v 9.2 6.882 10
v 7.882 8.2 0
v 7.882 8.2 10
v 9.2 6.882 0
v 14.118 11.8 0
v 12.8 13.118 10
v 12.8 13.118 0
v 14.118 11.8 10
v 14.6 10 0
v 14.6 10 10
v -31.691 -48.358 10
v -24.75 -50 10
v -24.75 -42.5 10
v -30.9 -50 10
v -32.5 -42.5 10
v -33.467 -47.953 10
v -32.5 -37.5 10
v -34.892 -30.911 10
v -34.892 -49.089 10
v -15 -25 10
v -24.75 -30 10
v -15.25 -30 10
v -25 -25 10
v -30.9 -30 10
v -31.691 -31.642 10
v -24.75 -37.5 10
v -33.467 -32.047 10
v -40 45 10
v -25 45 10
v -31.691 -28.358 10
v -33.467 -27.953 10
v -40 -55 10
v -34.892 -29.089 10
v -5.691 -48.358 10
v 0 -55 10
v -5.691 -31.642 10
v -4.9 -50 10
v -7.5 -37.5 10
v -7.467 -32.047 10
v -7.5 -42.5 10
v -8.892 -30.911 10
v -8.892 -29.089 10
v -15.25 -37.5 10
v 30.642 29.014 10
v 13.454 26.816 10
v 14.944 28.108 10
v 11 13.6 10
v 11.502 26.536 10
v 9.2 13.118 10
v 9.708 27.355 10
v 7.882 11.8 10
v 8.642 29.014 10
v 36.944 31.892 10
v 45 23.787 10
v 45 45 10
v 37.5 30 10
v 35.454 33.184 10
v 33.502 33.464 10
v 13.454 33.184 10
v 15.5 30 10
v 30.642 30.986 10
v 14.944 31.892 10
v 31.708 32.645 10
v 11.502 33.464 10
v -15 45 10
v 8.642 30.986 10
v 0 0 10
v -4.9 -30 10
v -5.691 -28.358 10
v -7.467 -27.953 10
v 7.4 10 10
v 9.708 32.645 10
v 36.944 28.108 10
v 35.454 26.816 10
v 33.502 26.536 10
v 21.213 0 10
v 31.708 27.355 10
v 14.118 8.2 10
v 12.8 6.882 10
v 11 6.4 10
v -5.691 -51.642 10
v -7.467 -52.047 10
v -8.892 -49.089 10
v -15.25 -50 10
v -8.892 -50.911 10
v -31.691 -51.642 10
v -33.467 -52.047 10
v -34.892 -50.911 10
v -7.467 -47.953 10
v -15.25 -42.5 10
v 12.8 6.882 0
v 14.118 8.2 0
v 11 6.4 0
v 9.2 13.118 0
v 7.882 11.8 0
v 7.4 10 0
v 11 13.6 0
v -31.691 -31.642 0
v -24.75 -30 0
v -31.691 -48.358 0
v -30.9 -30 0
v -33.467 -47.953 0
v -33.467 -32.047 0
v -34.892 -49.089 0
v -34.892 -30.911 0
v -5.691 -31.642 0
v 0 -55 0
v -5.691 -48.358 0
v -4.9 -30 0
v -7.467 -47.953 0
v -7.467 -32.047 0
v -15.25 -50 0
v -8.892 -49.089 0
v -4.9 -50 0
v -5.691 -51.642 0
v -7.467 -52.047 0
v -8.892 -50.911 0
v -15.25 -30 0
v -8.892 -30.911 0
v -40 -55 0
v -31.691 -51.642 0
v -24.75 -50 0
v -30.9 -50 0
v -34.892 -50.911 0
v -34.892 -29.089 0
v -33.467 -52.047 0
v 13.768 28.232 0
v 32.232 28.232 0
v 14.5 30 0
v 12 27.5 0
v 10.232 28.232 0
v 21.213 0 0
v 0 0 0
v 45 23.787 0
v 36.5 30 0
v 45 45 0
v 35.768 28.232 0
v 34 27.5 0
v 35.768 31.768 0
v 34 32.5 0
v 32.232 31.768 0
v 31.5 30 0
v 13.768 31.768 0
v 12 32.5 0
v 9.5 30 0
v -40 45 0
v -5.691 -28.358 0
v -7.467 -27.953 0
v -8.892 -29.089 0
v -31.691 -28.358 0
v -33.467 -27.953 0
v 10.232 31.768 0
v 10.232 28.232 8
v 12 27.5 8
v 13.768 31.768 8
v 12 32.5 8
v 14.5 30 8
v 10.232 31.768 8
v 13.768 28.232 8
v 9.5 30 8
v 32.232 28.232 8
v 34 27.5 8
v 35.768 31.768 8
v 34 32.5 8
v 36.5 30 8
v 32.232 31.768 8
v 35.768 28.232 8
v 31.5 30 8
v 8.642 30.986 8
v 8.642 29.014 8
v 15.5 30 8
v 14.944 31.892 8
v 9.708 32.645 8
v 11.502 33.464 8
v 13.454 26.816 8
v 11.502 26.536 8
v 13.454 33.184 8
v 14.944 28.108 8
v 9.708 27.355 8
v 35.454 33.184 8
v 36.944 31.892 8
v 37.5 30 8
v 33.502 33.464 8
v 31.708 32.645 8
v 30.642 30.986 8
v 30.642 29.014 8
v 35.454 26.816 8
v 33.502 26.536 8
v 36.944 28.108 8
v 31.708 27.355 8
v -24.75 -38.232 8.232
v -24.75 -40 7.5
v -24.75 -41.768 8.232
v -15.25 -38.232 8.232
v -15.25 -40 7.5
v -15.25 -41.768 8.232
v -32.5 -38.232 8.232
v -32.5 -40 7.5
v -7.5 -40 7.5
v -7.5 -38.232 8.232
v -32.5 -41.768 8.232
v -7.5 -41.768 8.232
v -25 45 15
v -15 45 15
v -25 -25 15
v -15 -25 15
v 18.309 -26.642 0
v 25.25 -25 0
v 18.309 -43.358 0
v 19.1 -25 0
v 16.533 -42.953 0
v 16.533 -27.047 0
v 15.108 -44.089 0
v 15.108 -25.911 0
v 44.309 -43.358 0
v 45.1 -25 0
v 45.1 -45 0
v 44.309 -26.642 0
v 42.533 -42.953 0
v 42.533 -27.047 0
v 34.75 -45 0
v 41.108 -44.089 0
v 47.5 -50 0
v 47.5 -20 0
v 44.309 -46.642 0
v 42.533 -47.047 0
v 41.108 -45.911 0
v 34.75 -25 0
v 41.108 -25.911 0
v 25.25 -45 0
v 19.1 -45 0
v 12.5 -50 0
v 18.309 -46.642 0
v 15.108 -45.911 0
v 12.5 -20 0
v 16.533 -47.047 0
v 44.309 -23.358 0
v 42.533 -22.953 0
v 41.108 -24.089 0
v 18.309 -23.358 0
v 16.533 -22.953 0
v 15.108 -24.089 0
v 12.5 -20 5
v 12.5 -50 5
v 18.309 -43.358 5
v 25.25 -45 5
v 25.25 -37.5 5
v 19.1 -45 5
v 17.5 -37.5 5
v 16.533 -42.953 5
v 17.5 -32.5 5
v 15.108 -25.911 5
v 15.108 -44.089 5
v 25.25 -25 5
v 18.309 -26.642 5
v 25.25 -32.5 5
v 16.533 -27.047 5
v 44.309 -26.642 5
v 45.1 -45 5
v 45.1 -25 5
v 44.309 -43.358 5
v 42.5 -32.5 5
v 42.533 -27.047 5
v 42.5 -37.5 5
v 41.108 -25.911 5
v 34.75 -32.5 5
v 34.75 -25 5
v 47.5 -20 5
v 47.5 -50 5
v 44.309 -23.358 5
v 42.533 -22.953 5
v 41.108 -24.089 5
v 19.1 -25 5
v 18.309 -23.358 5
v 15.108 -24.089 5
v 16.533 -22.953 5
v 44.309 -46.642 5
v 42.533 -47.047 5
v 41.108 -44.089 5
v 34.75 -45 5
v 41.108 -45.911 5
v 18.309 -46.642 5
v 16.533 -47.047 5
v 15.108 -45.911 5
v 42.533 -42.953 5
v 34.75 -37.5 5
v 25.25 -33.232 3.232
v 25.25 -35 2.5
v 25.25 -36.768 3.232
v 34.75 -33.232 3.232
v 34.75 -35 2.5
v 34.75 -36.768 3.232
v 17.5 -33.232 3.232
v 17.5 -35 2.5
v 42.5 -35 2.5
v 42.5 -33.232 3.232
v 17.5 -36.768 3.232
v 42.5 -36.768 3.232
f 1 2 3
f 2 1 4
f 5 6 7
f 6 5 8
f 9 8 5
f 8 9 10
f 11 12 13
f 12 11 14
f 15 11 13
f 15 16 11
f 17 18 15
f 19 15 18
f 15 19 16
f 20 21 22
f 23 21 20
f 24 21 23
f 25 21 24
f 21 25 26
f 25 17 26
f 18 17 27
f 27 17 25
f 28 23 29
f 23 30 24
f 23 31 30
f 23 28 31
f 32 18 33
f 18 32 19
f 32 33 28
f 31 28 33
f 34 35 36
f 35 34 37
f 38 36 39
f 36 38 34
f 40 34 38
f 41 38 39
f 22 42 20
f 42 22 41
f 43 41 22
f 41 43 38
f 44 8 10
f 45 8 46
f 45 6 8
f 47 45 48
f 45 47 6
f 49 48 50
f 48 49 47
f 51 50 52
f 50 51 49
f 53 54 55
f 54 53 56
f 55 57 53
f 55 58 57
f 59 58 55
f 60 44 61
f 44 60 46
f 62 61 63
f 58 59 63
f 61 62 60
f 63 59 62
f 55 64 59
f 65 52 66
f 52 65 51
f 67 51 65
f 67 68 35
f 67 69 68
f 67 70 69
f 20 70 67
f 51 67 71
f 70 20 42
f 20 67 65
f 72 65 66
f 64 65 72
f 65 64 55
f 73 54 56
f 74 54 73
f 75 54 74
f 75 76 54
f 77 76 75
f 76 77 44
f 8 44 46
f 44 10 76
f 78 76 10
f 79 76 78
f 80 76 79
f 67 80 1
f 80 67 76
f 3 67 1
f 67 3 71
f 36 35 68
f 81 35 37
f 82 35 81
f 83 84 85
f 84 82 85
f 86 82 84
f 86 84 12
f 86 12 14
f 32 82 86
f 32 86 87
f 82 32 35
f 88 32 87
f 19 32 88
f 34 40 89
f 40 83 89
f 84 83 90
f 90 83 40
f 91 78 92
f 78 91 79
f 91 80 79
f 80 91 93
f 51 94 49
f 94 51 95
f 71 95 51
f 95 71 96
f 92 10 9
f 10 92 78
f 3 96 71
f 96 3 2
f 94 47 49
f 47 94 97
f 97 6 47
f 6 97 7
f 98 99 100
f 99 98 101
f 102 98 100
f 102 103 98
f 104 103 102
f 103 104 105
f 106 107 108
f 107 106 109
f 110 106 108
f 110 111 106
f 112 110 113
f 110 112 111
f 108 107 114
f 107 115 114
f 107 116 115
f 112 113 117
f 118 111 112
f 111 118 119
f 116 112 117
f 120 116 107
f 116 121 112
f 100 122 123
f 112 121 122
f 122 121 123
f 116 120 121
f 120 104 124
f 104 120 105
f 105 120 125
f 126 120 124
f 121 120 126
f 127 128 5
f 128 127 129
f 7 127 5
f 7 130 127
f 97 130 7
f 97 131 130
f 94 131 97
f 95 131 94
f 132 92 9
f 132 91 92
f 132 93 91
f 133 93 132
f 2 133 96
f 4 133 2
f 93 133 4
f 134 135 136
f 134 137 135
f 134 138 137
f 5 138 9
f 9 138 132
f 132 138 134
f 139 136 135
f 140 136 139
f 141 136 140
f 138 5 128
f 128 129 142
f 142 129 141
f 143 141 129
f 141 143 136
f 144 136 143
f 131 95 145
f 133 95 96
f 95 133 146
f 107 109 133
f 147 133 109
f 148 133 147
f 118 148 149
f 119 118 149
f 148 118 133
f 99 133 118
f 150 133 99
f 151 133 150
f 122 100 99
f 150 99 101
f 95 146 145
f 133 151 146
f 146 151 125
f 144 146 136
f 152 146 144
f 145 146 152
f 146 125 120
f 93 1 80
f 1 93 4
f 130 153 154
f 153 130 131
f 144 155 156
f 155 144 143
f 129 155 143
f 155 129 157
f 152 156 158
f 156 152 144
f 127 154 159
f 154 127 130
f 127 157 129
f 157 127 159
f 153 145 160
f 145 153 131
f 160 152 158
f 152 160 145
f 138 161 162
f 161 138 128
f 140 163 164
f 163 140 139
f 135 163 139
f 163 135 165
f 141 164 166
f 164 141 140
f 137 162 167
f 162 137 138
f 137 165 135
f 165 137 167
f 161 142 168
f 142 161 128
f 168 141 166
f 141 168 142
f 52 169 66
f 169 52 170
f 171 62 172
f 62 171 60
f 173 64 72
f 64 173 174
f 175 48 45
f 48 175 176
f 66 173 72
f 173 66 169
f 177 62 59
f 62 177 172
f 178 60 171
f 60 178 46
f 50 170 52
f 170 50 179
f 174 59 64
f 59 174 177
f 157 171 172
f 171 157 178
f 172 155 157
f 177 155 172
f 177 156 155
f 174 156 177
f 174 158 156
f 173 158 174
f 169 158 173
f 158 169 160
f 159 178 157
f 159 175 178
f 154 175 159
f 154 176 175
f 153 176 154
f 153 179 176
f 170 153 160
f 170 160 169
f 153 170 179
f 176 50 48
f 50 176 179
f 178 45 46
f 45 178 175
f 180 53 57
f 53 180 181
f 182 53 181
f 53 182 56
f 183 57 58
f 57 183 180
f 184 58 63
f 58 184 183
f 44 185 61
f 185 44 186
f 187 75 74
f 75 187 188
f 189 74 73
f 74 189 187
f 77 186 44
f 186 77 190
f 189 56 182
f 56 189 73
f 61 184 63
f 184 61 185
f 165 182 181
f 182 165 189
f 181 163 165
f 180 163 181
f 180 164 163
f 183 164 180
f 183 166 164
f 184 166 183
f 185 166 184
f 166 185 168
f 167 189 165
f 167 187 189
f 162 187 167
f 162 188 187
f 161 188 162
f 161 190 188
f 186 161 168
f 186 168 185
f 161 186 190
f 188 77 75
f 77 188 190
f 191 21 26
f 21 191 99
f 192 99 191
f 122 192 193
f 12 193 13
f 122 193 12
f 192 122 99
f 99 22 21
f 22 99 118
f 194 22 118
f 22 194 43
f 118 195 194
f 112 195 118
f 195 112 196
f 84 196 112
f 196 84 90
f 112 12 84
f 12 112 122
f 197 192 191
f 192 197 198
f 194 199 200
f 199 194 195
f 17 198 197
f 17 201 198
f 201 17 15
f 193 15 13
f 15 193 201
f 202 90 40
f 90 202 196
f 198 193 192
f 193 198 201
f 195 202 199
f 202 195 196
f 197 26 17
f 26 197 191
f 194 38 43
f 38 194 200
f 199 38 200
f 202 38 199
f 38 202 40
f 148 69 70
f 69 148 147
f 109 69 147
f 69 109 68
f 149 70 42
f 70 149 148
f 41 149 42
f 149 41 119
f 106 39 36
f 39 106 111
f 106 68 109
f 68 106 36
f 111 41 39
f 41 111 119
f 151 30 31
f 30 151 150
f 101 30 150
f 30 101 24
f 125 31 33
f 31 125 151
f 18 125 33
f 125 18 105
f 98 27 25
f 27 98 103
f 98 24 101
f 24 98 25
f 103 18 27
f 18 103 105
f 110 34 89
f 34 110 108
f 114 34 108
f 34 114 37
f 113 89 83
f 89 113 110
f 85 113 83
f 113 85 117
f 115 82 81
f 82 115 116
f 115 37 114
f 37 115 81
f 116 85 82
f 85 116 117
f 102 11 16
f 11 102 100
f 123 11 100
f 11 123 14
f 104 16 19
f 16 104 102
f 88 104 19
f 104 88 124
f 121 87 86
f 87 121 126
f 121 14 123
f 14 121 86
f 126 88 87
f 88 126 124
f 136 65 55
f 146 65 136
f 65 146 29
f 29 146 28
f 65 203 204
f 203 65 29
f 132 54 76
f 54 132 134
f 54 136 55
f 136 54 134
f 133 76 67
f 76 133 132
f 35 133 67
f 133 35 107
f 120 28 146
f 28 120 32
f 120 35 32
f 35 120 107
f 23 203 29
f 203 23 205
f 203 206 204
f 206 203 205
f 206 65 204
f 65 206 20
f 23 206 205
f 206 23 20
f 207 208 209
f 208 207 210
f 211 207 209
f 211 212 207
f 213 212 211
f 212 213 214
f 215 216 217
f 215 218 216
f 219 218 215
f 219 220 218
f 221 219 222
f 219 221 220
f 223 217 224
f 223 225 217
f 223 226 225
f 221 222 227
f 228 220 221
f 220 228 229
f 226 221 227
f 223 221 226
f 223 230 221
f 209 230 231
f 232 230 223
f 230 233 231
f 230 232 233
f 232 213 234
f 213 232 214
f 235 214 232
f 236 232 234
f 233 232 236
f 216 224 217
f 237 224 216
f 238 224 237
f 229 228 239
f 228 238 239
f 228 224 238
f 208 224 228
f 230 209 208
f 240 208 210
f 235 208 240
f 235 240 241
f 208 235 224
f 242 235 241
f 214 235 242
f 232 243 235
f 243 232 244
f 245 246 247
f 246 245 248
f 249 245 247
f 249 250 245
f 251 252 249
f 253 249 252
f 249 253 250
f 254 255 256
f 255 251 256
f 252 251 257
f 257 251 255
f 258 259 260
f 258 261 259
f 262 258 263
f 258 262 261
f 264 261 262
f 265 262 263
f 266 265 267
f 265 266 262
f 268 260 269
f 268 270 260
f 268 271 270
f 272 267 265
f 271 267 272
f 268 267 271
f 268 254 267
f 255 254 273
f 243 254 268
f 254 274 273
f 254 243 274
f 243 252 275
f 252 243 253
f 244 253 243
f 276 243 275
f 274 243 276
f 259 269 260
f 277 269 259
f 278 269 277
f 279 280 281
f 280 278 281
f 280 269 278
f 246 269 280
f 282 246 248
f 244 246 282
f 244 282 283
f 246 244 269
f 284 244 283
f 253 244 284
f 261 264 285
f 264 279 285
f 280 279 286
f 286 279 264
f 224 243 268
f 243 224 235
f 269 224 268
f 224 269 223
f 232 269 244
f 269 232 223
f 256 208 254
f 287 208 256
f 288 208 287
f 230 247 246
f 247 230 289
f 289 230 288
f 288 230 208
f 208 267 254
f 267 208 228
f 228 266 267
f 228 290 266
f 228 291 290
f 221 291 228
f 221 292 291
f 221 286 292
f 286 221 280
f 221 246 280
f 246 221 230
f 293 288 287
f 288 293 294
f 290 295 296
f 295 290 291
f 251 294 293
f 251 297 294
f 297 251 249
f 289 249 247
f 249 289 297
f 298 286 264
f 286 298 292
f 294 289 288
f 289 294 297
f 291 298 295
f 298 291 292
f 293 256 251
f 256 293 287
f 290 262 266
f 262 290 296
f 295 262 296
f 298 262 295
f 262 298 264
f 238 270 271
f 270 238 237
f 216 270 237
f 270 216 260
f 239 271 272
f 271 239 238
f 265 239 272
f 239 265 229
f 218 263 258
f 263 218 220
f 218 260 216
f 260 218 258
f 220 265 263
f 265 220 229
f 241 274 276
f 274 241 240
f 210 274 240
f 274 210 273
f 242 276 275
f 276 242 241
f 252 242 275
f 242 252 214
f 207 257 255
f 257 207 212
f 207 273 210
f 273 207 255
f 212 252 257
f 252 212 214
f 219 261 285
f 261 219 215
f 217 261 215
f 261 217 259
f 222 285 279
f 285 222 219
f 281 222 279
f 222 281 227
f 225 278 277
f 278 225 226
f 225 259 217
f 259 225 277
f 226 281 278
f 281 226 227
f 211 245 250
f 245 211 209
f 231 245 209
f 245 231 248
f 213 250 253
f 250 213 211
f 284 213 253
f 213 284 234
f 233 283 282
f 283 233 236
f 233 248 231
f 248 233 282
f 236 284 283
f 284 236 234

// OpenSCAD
// V3 Add belt tensioner
difference(){
//mirror([1,0,0]){
    Body();
    ScrewHoles();
    IdlerPocket();
    IdlerCap();
}

module Body(){
   //Main body
    //mirror([0,1,0]){
    linear_extrude(10){
        difference(){
        square(45,50);
        rotate(-45)translate([15,10]){square([40,50]);}
    }}

    //Belt idler pulley body
    linear_extrude(10)translate([-40,-55]){square([40,100]);}
    linear_extrude(15)translate([-25,-25]){square([10,70]);}
    
    //Belt idler cap body
    
    linear_extrude(5)translate([30,-35]){square([35,30],center=true);}
}

module ScrewHoles(){
    //Screw holes
    translate([11,10]){cylinder(10,3.6,3.6);}
    translate([12,30]){cylinder(10,2.5,2.5);}
    translate([34,30]){cylinder(10,2.5,2.5);}

    //Small screw pockets
    translate([12,30,8]){cylinder(4,3.5,3.5);}
    translate([34,30,8]){cylinder(4,3.5,3.5);} 

}

//Pocket for the idler and axis
module IdlerPocket(){
    linear_extrude(10)translate([-20,-40]){square([9.5,20],center=true);}
    
    //Idler Pulley Axis
    translate([-32.5,-40,10])rotate(a=[90,90,90]){cylinder(25,2.5,2.5);}
    
    //Screws for the cap
    r = 2.1;
    xdiff = 13;
    ydiff = 10;
    xcenter = -20;
    ycenter = -40;
    translate([xcenter+xdiff,ycenter+ydiff]){cylinder(10,r,r);}
    translate([xcenter-xdiff,ycenter+ydiff]){cylinder(10,r,r);}
    translate([xcenter+xdiff,ycenter-ydiff]){cylinder(10,r,r);}    
    translate([xcenter-xdiff,ycenter-ydiff]){cylinder(10,r,r);}    
}

module IdlerCap(){
    linear_extrude(10)translate([30,-35]){square([9.5,20],center=true);}
    
    //Idler Pulley Axis
    translate([17.5,-35,5])rotate(a=[90,90,90]){cylinder(25,2.5,2.5);}
    
    //Screws for the cap
    r = 2.1;
    xdiff = 13;
    ydiff = 10;
    xcenter = 30;
    ycenter = -35;
    translate([xcenter+xdiff,ycenter+ydiff]){cylinder(10,r,r);}
    translate([xcenter-xdiff,ycenter+ydiff]){cylinder(10,r,r);}
    translate([xcenter+xdiff,ycenter-ydiff]){cylinder(10,r,r);}    
    translate([xcenter-xdiff,ycenter-ydiff]){cylinder(10,r,r);} 
}
